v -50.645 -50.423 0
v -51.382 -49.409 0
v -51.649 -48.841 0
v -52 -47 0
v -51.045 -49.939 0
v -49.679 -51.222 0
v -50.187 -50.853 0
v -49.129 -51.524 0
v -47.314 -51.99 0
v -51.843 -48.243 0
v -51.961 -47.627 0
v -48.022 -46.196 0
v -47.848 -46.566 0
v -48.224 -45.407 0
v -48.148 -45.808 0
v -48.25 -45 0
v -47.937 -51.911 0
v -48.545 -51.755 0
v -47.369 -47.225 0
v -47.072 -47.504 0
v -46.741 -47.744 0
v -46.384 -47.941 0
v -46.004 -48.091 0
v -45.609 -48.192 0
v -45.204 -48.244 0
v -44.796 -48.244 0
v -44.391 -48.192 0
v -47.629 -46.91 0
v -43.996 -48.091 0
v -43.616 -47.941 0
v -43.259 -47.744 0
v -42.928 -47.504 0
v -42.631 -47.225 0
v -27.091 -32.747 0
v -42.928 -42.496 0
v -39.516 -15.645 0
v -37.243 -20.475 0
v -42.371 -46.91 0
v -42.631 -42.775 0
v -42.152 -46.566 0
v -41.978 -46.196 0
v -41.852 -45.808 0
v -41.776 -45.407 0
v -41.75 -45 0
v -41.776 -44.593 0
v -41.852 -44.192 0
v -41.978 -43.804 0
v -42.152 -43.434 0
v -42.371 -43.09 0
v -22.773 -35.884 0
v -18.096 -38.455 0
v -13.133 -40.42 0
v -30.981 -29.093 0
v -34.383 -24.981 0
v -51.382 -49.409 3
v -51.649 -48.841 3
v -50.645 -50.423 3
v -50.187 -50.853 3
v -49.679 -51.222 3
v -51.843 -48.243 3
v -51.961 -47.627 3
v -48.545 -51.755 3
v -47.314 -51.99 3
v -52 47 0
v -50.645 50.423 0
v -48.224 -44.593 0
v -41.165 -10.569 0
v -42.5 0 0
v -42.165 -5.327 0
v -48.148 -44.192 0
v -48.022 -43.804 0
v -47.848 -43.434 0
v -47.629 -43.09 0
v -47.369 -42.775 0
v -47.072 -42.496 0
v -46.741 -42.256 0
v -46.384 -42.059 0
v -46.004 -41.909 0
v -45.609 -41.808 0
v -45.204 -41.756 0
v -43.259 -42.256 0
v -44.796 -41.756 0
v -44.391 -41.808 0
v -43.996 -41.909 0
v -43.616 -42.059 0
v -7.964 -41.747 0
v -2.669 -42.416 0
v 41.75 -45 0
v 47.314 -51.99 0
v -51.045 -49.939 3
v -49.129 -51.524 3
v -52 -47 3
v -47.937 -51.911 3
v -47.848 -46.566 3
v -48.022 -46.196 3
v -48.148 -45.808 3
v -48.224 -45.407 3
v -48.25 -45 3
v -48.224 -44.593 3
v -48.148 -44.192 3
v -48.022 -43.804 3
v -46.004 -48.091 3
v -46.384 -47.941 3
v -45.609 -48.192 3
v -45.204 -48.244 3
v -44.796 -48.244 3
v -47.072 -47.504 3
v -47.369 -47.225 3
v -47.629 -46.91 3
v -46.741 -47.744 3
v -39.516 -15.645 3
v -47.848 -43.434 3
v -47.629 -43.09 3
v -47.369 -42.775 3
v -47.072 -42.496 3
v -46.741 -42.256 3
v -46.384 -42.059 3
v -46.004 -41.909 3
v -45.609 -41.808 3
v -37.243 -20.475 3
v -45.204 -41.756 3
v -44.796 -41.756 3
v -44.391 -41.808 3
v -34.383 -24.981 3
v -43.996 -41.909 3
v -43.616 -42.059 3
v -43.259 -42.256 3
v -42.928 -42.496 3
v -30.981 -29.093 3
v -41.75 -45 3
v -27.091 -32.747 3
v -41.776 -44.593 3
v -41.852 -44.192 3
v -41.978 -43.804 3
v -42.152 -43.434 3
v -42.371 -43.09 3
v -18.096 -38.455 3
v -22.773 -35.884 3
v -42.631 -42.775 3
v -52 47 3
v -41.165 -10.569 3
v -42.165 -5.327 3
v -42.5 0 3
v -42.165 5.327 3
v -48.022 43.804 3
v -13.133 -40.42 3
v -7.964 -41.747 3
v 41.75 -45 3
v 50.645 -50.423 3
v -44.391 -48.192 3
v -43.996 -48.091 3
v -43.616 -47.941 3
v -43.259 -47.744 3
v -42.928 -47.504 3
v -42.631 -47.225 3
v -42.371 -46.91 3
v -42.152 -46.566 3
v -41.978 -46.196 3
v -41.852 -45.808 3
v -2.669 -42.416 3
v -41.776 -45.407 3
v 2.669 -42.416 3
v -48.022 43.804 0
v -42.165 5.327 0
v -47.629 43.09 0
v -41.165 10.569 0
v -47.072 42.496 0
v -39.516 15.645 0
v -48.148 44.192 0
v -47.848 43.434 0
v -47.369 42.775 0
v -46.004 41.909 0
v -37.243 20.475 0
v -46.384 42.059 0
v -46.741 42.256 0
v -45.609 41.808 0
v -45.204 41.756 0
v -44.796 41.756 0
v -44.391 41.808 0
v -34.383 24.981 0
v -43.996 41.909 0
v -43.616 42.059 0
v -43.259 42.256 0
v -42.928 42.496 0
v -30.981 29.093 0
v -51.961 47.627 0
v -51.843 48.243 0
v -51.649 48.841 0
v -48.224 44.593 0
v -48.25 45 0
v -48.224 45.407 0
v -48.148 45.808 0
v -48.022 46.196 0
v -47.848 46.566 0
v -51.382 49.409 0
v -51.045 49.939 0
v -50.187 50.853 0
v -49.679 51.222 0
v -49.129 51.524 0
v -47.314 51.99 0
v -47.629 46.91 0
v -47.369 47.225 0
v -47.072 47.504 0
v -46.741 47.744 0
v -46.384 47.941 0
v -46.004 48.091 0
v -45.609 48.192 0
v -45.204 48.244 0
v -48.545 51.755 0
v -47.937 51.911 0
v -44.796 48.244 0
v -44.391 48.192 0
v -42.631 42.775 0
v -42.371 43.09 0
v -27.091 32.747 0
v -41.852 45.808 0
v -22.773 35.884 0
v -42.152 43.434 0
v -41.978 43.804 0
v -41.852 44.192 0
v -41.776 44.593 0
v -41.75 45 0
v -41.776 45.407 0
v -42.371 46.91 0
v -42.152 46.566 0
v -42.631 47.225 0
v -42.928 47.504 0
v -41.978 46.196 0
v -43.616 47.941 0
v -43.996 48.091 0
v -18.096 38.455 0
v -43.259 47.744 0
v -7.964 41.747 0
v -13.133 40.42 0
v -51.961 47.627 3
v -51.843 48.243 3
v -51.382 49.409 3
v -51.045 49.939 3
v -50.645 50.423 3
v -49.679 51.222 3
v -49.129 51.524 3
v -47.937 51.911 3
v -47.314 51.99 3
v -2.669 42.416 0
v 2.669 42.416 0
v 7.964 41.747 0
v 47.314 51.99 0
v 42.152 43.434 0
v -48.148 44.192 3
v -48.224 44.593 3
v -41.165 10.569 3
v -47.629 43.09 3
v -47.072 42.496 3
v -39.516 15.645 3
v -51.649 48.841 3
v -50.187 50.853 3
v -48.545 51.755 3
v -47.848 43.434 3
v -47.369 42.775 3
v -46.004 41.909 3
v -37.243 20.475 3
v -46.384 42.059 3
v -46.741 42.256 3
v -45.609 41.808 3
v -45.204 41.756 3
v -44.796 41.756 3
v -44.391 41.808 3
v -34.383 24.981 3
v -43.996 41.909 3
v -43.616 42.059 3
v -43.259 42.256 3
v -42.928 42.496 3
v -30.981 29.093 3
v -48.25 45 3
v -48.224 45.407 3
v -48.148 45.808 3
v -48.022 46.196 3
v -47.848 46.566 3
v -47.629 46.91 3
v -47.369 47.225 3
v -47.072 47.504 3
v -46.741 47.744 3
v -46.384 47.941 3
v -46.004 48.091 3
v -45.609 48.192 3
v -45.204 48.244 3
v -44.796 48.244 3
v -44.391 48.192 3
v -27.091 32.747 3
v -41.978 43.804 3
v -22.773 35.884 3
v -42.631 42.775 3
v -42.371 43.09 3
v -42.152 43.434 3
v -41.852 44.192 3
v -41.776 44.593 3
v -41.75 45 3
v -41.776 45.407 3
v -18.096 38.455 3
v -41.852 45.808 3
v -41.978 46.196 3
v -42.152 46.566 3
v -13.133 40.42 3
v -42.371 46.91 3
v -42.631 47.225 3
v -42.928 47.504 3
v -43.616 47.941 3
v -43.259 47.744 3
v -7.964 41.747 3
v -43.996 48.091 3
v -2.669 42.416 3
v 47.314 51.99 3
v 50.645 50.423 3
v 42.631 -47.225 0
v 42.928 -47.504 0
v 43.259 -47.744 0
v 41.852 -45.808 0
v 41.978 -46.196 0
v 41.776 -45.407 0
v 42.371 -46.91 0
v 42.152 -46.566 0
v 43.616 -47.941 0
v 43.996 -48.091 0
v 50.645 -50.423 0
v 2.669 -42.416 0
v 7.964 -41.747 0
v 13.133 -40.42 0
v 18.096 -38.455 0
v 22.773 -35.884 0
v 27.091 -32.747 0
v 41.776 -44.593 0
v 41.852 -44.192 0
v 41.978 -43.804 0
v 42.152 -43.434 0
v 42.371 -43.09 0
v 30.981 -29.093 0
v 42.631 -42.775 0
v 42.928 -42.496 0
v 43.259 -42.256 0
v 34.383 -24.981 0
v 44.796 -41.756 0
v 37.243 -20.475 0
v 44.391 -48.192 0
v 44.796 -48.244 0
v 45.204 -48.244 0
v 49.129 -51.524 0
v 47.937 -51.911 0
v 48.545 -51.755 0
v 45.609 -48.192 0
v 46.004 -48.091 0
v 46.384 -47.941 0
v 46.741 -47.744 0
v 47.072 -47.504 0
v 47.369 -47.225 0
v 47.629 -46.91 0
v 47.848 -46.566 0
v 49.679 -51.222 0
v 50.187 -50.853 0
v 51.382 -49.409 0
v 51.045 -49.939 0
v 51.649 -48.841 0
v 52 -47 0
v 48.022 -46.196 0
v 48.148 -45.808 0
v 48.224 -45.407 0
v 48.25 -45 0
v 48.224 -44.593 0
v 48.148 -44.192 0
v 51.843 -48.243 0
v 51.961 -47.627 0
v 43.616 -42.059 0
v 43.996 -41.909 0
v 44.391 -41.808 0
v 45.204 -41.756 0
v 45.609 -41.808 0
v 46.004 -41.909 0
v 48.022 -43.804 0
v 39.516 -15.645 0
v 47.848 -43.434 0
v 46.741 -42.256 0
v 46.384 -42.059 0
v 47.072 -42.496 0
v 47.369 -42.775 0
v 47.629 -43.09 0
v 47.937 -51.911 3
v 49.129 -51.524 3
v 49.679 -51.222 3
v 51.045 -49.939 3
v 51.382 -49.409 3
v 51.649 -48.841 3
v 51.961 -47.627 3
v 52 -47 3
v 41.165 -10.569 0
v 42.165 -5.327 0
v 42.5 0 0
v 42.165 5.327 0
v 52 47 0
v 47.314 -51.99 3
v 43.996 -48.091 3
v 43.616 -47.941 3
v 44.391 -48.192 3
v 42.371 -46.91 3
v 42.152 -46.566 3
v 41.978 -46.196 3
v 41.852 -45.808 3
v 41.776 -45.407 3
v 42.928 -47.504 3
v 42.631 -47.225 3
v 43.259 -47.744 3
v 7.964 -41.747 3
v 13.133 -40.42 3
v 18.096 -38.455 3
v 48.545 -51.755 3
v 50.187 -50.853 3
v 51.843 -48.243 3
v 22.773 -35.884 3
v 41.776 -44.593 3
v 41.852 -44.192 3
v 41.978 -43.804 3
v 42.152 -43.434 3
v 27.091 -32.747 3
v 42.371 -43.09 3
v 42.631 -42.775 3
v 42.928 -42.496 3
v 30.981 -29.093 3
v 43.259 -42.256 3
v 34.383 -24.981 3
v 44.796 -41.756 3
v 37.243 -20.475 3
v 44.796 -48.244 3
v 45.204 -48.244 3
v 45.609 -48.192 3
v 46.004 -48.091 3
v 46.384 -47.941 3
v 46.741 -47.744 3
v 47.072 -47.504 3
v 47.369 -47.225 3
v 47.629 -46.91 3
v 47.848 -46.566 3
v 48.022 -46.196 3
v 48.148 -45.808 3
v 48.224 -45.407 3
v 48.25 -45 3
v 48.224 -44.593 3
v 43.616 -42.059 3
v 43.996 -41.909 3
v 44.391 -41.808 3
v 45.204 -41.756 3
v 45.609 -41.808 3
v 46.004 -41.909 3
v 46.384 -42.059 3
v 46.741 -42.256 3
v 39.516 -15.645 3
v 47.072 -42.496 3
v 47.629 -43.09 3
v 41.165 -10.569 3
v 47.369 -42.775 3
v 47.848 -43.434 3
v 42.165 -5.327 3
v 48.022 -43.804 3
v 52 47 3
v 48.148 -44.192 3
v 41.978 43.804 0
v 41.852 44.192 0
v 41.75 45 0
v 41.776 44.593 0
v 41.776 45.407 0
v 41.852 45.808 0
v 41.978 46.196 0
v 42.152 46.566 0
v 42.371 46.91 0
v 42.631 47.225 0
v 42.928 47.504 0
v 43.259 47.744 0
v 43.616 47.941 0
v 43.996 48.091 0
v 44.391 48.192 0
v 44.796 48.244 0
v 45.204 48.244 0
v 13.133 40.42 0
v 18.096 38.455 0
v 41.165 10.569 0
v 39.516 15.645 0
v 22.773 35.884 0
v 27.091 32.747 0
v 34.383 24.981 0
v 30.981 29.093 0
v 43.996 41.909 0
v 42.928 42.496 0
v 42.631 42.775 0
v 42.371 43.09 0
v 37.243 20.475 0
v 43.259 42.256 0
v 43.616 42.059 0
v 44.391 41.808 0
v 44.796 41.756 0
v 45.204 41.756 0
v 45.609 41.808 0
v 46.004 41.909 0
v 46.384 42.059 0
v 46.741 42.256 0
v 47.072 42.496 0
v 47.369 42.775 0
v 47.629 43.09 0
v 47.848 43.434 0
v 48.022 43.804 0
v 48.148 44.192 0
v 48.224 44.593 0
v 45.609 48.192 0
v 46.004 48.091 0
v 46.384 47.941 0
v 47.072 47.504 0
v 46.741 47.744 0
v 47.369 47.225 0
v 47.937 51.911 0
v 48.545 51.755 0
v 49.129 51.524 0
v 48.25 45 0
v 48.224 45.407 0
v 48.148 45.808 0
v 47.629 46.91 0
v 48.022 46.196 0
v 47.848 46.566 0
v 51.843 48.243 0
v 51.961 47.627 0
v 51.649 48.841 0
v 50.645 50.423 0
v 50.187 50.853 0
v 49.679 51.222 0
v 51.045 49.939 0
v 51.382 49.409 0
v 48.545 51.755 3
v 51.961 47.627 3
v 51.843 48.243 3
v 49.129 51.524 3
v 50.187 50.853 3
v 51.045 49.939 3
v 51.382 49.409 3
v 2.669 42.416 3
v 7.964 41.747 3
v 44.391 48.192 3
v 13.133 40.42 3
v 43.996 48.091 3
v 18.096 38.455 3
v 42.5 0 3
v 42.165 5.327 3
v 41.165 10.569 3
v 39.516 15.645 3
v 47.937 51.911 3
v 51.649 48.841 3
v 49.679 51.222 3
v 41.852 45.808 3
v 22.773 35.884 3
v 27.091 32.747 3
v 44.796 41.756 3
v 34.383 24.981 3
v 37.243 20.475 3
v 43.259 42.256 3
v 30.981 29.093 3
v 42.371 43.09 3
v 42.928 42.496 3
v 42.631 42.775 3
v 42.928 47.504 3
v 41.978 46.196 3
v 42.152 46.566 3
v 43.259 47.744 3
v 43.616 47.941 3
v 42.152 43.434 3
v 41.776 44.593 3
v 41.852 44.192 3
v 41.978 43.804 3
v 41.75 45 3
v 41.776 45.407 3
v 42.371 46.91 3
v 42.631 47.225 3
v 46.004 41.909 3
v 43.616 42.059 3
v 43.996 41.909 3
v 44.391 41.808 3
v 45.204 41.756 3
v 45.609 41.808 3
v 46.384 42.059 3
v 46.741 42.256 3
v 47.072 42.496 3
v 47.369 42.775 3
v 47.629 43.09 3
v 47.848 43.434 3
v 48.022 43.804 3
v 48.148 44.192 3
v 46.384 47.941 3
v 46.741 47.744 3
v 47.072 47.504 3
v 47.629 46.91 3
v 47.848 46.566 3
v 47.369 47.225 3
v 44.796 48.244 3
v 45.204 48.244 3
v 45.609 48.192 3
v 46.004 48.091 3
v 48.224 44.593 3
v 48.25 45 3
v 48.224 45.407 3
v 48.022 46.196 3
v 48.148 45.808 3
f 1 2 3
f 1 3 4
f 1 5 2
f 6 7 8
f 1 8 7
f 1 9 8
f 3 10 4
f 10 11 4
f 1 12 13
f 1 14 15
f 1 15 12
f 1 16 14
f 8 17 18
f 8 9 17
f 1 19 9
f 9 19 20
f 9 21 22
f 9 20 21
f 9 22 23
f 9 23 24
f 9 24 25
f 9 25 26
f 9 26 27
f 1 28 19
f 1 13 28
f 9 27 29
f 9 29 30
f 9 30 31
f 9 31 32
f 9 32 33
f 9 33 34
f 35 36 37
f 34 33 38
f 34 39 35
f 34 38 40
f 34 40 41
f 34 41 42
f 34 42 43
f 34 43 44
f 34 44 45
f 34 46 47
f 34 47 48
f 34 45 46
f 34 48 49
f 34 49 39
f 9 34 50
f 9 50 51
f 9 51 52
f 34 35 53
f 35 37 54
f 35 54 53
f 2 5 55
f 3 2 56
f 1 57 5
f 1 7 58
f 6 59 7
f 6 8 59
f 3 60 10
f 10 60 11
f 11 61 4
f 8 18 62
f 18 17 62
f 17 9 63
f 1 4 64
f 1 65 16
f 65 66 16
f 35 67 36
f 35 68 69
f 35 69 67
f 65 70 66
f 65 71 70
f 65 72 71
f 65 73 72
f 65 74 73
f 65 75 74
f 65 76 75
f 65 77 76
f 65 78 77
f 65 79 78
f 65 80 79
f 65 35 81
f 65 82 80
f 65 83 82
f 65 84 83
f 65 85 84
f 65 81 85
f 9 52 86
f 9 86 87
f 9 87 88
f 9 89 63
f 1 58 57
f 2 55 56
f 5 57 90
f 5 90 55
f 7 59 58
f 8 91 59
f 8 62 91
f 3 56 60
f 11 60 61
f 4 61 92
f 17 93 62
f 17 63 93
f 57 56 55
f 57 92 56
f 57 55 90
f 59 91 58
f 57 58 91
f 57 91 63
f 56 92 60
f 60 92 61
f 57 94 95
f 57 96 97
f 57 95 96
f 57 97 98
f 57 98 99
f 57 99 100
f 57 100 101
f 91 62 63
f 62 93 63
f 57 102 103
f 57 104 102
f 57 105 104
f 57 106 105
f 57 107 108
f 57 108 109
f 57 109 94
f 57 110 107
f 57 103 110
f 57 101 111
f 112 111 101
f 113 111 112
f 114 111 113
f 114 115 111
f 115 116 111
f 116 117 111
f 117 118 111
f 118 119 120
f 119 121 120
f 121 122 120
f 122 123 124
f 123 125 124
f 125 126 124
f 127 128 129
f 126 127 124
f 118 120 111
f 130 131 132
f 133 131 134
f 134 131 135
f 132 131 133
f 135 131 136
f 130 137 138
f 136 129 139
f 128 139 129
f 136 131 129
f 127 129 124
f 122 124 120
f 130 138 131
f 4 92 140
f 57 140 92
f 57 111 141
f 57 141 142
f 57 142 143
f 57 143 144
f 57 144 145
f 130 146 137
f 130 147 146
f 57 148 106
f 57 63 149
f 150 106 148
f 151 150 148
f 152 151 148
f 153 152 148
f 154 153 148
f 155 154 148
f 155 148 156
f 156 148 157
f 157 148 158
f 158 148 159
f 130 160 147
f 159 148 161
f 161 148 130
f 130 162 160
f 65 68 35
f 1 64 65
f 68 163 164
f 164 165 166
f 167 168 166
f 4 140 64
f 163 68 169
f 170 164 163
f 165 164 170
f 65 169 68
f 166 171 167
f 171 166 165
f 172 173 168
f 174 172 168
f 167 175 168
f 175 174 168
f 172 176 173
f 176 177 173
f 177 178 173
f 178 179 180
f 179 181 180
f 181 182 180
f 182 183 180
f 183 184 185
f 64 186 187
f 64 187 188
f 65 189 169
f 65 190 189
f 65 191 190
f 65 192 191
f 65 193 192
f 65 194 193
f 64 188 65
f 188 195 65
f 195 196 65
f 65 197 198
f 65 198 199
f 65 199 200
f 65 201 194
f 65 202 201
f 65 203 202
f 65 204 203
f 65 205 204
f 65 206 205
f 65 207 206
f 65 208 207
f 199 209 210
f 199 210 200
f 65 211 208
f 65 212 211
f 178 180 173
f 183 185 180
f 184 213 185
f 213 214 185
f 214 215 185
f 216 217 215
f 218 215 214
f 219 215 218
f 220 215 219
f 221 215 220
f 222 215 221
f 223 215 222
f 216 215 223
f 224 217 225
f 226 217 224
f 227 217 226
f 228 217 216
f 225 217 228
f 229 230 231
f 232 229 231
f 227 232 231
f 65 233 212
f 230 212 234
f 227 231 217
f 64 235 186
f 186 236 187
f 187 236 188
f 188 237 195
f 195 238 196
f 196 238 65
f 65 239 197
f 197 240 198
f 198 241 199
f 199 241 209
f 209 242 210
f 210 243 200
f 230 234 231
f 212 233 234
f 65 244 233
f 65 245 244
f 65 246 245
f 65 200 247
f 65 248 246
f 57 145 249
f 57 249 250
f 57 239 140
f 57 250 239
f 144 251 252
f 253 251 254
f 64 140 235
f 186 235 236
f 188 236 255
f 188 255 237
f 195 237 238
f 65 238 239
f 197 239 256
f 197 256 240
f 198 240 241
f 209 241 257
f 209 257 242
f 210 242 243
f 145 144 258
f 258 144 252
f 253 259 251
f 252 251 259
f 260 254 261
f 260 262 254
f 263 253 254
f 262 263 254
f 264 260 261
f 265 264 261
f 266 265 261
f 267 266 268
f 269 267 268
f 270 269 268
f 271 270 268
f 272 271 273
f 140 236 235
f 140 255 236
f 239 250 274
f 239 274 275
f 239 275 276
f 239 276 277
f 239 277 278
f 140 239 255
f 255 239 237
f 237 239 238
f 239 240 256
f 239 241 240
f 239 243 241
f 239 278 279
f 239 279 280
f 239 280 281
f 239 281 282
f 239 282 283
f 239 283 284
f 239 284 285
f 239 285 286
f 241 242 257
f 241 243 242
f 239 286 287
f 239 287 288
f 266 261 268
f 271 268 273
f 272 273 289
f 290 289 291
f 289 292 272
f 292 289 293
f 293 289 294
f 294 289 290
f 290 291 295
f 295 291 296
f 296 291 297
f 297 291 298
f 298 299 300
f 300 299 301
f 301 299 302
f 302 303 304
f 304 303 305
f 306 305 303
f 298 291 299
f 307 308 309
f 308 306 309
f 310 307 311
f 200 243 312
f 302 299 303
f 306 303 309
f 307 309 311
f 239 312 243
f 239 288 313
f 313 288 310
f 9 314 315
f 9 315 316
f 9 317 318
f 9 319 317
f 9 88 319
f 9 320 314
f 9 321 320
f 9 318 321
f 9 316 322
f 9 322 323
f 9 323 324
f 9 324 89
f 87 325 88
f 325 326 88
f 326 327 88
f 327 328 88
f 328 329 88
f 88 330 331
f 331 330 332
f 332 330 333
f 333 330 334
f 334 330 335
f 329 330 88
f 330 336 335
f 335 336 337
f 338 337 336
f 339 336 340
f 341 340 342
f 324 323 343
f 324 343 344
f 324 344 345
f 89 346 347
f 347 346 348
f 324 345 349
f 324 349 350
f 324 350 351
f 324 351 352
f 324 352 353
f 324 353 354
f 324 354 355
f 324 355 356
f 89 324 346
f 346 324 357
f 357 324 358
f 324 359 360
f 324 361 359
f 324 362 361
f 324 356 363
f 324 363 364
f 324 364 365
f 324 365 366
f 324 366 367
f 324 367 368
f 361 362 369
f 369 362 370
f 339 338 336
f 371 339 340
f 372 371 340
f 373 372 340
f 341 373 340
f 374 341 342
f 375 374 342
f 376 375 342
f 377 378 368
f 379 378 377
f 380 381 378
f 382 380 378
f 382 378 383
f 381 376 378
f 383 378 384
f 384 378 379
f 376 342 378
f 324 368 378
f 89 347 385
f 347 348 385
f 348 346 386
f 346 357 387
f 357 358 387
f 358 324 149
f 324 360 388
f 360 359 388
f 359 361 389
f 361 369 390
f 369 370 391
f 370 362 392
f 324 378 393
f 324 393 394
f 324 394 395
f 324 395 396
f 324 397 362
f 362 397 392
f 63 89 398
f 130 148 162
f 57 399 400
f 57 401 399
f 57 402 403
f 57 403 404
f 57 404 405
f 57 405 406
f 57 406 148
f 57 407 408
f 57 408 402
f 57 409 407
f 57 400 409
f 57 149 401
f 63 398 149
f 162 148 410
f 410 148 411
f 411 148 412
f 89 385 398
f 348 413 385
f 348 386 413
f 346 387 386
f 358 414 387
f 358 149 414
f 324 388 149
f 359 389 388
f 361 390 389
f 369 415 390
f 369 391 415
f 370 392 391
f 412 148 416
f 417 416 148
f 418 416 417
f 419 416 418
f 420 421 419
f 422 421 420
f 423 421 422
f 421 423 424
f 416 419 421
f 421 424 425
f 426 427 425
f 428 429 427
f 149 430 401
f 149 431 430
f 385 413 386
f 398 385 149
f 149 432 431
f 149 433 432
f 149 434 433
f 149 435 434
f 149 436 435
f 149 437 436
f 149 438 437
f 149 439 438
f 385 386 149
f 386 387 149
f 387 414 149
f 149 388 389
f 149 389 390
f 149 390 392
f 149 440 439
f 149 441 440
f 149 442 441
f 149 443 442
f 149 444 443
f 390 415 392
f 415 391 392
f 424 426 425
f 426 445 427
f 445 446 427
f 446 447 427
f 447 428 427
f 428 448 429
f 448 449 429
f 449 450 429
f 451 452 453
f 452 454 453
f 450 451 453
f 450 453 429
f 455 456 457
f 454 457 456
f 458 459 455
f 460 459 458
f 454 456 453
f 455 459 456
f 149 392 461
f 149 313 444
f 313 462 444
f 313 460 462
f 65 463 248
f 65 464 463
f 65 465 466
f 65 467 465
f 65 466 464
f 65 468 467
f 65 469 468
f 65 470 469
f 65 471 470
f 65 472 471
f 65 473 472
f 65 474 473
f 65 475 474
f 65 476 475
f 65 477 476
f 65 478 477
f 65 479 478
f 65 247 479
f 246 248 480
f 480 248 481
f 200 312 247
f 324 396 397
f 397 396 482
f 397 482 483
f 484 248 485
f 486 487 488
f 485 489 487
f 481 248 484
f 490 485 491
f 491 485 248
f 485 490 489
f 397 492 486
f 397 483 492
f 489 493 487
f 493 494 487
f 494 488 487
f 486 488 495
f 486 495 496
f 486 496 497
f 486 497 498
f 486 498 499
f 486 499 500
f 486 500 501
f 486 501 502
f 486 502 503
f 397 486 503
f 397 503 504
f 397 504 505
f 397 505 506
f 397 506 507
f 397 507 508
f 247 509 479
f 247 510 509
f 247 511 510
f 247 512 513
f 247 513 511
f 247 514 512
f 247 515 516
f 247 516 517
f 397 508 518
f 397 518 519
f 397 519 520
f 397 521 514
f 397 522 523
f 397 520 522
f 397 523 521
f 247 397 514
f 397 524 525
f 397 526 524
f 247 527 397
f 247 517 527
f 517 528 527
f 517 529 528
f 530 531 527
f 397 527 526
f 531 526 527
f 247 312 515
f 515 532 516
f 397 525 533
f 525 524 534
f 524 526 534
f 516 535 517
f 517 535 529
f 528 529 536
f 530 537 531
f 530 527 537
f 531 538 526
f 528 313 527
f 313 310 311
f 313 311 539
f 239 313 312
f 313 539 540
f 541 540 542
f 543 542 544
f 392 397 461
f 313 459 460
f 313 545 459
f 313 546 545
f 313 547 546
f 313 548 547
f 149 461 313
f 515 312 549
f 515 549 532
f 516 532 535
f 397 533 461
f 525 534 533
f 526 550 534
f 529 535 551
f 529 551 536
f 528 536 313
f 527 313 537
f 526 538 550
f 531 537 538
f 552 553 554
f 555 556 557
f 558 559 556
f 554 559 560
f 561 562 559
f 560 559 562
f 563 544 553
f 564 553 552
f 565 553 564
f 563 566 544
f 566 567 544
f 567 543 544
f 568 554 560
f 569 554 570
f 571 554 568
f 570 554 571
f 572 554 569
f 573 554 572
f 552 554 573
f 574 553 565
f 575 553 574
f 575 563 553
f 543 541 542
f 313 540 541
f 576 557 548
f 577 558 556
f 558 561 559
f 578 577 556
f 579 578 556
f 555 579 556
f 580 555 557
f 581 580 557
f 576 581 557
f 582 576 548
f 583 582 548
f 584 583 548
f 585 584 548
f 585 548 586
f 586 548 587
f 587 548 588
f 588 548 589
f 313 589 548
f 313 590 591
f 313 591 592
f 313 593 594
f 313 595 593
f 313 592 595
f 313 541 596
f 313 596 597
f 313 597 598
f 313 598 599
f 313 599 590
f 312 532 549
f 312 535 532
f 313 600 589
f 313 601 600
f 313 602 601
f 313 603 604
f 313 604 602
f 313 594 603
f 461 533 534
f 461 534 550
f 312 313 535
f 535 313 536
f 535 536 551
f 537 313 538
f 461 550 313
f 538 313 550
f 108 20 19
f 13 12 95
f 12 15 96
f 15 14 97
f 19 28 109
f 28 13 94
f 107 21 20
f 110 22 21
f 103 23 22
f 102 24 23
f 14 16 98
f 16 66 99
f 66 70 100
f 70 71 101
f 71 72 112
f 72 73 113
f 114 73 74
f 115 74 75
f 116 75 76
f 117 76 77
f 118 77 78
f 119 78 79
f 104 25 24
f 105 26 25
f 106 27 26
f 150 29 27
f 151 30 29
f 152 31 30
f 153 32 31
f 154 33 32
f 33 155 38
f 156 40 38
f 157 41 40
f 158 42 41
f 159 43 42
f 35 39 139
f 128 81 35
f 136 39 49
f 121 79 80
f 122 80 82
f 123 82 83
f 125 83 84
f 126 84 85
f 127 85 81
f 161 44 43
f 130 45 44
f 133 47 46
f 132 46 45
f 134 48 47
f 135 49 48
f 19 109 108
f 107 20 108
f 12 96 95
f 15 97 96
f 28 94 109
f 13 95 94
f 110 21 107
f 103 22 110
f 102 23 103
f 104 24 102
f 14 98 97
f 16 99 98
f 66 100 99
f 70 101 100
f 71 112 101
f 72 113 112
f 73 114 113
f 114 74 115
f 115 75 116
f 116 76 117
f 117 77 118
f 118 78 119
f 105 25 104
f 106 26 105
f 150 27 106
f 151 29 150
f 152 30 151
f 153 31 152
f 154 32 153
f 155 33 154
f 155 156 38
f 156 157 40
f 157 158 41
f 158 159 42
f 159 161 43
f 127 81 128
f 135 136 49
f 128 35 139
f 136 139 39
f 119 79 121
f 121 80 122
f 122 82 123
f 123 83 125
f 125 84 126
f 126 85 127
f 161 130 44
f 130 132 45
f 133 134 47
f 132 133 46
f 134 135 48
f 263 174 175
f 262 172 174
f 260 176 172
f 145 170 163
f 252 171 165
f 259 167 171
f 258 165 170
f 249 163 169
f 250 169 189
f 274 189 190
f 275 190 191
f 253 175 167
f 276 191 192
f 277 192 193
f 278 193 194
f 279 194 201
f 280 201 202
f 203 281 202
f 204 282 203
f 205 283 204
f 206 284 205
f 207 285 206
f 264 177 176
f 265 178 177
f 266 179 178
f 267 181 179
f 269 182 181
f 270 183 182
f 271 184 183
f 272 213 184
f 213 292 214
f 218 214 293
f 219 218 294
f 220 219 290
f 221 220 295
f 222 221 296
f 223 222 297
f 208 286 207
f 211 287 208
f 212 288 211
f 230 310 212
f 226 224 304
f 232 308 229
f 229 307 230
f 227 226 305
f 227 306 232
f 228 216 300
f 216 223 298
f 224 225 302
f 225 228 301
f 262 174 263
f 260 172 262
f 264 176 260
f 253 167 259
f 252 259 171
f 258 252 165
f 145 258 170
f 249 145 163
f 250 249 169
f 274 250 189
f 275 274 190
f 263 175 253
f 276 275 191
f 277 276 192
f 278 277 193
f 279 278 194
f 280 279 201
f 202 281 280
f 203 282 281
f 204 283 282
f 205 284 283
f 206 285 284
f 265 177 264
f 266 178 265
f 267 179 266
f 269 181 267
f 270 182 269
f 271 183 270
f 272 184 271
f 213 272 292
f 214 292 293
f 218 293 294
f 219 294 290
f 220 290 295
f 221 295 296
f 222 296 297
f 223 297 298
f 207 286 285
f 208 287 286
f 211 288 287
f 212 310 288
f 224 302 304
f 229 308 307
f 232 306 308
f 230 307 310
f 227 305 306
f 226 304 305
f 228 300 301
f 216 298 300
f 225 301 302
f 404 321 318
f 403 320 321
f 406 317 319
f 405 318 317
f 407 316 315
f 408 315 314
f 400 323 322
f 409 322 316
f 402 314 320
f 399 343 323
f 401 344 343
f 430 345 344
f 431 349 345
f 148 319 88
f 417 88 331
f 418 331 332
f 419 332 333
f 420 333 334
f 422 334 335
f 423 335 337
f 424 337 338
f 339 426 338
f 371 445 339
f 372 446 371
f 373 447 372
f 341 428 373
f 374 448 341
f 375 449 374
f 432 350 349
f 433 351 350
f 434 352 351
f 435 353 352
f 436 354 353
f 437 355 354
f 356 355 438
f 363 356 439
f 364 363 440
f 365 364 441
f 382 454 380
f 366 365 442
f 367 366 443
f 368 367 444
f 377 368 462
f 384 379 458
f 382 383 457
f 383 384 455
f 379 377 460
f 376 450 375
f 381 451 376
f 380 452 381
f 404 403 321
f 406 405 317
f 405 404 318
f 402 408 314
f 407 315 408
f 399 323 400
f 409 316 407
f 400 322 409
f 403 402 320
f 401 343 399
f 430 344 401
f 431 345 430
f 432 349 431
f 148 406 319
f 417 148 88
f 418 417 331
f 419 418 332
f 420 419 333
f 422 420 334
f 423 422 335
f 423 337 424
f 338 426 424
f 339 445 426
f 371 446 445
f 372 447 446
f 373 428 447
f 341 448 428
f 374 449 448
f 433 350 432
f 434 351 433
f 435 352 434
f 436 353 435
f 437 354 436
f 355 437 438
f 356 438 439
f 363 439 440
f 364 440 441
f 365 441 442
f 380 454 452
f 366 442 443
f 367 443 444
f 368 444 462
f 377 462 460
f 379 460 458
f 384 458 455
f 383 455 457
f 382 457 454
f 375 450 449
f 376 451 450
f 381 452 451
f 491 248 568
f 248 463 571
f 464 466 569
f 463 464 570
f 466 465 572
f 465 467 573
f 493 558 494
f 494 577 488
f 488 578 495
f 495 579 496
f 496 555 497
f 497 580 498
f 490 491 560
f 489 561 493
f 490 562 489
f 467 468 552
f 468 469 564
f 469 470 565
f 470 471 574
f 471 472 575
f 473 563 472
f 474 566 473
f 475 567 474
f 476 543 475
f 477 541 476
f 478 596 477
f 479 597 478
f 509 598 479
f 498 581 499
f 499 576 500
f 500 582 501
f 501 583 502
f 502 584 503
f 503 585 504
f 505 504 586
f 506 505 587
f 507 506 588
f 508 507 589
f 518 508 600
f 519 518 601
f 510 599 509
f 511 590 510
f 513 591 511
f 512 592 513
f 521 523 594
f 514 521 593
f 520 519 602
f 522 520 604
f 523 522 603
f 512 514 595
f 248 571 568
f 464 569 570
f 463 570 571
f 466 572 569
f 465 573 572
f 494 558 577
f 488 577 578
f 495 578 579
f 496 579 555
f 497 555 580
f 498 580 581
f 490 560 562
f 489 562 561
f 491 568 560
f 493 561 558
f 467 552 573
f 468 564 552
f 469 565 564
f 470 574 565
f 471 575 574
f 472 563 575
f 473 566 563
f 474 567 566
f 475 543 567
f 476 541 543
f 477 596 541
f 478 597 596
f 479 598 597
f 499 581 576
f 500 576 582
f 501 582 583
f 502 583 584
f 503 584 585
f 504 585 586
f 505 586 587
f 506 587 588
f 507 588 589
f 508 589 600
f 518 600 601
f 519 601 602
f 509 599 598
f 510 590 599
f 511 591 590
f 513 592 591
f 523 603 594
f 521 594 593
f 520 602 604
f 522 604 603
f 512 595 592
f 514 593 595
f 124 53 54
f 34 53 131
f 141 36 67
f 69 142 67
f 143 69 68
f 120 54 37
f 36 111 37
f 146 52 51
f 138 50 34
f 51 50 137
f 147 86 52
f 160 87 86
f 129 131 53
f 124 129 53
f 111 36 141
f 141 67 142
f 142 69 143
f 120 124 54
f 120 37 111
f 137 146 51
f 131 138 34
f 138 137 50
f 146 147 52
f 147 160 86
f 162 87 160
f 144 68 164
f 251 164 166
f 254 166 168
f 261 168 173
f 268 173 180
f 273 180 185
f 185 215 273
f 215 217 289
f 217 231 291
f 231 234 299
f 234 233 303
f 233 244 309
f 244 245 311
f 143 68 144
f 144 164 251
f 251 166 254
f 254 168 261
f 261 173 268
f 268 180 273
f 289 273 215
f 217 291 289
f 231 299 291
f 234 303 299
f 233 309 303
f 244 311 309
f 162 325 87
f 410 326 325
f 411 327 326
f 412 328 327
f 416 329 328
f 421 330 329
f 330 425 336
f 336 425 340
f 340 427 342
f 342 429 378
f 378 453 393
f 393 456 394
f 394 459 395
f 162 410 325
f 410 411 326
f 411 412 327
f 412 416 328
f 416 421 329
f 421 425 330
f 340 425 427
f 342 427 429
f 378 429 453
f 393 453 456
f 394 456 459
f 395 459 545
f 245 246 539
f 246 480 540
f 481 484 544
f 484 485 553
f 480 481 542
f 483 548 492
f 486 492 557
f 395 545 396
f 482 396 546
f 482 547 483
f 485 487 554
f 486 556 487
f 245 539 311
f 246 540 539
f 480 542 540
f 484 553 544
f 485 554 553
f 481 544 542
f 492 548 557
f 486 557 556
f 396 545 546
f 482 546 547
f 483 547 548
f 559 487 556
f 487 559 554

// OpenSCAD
$fn = 50;

difference() {
	union() {
		hull() {
			translate(v = [-47.0, 47.0, 0]) {
				cylinder(h = 3, r = 5);
			}
			translate(v = [47.0, 47.0, 0]) {
				cylinder(h = 3, r = 5);
			}
			translate(v = [-47.0, -47.0, 0]) {
				cylinder(h = 3, r = 5);
			}
			translate(v = [47.0, -47.0, 0]) {
				cylinder(h = 3, r = 5);
			}
		}
	}
	union() {
		translate(v = [-45.0, -45.0, -100.0]) {
			cylinder(h = 200, r = 3.25);
		}
		translate(v = [-45.0, 45.0, -100.0]) {
			cylinder(h = 200, r = 3.25);
		}
		translate(v = [45.0, -45.0, -100.0]) {
			cylinder(h = 200, r = 3.25);
		}
		translate(v = [45.0, 45.0, -100.0]) {
			cylinder(h = 200, r = 3.25);
		}
		translate(v = [-45.0, -45.0, -100.0]) {
			cylinder(h = 200, r = 1.8);
		}
		translate(v = [-45.0, 45.0, -100.0]) {
			cylinder(h = 200, r = 1.8);
		}
		translate(v = [45.0, -45.0, -100.0]) {
			cylinder(h = 200, r = 1.8);
		}
		translate(v = [45.0, 45.0, -100.0]) {
			cylinder(h = 200, r = 1.8);
		}
		cylinder(h = 3, r = 42.5);
	}
}
